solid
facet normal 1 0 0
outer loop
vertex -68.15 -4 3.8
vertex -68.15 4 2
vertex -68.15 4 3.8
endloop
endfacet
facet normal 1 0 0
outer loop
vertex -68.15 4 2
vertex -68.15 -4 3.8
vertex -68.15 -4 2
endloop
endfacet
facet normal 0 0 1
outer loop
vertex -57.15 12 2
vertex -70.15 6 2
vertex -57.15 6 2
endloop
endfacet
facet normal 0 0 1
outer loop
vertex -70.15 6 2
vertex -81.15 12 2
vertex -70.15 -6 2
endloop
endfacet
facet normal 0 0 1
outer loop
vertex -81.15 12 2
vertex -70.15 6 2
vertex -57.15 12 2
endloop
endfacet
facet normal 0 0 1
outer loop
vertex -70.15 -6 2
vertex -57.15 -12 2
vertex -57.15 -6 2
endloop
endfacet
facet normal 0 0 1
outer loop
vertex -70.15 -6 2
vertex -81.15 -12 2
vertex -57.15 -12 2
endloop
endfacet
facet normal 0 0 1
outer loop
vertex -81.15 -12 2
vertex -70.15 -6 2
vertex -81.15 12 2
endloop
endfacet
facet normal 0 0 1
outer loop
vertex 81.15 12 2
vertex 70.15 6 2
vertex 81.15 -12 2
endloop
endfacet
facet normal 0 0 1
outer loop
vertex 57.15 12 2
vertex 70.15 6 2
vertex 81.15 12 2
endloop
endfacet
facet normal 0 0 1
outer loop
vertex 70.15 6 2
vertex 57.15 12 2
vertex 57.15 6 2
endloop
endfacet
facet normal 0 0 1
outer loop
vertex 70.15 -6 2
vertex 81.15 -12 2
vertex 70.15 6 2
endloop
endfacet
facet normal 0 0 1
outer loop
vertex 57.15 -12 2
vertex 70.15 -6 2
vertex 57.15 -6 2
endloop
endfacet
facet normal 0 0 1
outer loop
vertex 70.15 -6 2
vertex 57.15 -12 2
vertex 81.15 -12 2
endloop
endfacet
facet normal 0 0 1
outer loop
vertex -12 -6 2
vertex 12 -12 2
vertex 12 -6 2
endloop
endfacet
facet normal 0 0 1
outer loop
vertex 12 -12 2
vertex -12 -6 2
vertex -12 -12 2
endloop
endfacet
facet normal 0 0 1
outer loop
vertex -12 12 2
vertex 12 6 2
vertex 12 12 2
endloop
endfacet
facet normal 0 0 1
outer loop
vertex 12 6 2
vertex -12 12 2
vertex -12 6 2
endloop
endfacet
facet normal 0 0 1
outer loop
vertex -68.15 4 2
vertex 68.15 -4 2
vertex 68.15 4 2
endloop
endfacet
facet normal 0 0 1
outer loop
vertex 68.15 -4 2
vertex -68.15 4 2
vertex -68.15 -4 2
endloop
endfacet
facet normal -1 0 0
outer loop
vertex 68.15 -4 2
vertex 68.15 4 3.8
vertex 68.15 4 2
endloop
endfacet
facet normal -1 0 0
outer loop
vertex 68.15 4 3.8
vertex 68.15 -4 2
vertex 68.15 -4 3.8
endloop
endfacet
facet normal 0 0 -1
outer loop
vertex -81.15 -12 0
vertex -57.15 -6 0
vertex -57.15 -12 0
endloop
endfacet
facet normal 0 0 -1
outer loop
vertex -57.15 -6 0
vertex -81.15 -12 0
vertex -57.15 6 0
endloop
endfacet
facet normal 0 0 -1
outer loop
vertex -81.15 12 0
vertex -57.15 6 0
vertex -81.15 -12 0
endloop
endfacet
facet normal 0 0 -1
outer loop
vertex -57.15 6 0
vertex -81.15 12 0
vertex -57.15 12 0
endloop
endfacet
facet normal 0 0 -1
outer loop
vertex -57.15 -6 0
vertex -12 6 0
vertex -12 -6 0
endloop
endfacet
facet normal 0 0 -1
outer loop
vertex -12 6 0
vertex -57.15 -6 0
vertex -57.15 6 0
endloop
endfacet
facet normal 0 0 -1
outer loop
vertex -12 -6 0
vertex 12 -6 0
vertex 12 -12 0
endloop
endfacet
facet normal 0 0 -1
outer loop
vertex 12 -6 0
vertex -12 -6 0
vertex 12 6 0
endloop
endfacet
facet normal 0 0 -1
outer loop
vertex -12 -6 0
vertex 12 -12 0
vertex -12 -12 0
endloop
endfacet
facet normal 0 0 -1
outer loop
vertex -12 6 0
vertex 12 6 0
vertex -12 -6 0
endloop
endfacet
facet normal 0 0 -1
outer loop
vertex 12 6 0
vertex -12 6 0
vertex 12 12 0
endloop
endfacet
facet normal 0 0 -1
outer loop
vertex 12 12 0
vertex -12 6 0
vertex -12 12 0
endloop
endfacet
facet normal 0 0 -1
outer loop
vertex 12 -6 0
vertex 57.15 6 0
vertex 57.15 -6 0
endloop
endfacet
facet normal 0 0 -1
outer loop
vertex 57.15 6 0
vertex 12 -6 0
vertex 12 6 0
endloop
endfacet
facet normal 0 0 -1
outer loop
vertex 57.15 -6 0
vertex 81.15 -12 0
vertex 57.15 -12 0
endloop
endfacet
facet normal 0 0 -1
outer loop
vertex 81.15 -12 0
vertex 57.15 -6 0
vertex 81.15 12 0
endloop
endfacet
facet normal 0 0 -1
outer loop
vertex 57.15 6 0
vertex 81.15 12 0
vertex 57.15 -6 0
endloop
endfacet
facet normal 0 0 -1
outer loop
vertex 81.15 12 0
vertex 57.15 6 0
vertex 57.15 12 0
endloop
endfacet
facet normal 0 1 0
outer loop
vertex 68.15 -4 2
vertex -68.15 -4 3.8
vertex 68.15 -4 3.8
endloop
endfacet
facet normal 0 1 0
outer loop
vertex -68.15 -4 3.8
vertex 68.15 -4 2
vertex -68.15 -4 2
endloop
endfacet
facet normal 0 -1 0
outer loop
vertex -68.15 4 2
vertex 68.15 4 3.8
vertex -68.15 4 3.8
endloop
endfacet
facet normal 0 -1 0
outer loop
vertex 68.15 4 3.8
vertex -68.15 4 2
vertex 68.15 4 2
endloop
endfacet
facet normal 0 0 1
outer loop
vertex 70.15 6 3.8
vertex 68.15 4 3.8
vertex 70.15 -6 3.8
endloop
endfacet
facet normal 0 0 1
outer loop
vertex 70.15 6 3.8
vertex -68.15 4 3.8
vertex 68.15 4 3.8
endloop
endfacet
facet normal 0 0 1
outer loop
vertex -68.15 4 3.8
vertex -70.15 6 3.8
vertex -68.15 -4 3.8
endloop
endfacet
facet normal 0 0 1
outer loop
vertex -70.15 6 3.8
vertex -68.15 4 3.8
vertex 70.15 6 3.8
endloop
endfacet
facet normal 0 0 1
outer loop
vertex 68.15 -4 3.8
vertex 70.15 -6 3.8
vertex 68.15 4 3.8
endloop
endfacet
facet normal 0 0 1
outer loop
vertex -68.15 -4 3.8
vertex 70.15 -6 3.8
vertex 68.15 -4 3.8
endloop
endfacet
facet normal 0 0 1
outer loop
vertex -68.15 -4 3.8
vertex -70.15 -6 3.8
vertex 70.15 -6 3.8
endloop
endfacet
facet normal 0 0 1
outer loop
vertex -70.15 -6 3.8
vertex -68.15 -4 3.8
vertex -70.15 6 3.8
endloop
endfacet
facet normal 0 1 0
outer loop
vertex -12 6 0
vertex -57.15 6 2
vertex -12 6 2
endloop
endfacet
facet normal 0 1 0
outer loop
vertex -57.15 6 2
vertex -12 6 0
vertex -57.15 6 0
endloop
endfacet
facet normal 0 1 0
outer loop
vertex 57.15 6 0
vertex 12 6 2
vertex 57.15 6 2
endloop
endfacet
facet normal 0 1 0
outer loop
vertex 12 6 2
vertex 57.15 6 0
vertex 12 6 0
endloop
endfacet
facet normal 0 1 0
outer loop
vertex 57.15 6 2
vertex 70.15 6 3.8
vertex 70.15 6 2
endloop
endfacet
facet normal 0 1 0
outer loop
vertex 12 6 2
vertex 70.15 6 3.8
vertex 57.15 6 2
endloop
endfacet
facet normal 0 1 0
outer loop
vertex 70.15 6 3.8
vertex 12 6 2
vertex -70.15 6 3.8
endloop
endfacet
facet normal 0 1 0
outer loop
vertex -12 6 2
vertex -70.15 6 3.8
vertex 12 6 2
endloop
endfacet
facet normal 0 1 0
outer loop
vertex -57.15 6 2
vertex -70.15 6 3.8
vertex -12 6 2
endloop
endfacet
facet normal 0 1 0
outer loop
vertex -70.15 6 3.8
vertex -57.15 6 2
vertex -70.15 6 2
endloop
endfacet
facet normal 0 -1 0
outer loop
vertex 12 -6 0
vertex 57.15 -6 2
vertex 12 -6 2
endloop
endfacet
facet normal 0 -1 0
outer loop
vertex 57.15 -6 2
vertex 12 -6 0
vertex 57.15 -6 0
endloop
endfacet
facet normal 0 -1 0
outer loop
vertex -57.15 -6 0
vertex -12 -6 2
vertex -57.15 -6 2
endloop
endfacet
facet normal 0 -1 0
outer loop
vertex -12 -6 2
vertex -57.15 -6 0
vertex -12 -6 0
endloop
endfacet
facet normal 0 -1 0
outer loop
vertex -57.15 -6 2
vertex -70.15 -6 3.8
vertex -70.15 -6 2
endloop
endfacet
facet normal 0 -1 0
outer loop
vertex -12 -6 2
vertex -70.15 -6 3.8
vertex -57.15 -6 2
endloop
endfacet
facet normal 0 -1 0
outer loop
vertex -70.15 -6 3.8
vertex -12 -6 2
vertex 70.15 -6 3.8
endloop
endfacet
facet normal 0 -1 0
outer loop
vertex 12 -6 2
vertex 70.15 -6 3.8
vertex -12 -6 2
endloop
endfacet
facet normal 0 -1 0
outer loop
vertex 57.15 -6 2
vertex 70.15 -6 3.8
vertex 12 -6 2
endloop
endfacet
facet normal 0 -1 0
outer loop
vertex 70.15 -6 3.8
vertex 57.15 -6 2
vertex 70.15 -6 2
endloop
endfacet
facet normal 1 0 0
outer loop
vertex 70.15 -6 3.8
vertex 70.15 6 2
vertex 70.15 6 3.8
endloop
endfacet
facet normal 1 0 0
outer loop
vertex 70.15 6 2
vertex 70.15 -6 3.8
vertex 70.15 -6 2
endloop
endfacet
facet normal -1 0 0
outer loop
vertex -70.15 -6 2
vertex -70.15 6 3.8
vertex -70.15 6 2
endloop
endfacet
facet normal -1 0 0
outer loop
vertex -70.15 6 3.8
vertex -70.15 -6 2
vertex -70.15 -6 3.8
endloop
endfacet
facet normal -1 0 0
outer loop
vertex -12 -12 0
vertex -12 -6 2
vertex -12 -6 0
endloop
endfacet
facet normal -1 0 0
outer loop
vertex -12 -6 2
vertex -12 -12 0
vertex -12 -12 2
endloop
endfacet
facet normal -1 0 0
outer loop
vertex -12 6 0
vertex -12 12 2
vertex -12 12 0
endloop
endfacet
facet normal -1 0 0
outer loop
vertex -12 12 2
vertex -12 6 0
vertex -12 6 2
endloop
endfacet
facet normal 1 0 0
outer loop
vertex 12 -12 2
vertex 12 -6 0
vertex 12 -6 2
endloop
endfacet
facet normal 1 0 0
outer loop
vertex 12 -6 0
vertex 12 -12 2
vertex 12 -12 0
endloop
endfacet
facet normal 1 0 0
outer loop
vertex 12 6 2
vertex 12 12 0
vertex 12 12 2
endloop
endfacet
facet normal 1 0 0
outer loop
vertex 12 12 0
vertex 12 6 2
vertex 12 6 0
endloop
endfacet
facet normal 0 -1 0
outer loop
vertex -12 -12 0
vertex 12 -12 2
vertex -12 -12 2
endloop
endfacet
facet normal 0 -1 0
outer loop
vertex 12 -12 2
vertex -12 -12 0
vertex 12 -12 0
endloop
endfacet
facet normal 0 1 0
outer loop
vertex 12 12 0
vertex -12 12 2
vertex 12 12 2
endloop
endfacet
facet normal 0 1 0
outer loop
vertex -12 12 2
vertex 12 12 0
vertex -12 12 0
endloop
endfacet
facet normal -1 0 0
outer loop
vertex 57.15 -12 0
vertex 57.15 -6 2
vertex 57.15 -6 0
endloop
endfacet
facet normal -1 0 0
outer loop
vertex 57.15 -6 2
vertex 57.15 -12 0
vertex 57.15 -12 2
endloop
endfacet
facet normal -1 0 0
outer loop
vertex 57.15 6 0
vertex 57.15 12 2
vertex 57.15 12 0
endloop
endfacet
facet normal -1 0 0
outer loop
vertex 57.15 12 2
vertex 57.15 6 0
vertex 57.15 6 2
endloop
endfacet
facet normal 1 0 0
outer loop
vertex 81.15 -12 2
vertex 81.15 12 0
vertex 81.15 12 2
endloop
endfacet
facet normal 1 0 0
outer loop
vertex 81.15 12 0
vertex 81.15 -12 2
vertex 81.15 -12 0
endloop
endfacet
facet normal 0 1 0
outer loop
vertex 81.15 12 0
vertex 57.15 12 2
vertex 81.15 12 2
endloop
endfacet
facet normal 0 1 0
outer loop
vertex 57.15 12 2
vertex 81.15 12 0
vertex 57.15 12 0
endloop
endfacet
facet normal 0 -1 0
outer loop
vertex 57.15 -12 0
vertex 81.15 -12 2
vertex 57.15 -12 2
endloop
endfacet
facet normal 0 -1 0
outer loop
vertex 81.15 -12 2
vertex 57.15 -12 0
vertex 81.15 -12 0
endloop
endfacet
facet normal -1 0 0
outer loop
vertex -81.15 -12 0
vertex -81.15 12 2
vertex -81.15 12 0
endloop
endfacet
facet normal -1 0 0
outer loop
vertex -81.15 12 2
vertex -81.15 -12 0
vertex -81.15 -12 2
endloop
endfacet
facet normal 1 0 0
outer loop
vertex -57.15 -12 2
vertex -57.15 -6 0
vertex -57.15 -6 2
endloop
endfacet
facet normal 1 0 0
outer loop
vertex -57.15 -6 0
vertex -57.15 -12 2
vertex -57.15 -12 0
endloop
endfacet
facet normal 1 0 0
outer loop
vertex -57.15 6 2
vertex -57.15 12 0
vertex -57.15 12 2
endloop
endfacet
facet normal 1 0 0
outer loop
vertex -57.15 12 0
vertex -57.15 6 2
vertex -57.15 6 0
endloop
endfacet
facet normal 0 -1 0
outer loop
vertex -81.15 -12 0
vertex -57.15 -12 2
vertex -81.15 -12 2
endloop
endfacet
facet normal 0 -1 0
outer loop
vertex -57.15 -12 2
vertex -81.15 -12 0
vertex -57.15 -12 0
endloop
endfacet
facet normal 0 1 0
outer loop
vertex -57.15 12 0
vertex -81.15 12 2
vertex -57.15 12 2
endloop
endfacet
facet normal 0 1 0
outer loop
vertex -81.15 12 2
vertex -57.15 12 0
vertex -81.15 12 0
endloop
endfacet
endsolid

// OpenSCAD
l=136.3;
w=8;
h=1.8;
wall_thickness = 2;

translate([0, 0, wall_thickness/2]) cube([l, w, wall_thickness], center=true);
translate([0, (w+wall_thickness)/2, (h+wall_thickness)/2]) cube([l, wall_thickness, h+wall_thickness], center=true); 
translate([0, -(w+wall_thickness)/2, (h+wall_thickness)/2]) cube([l, wall_thickness, h+wall_thickness], center=true);
translate([(l+wall_thickness)/2, 0, (h+wall_thickness)/2]) cube([wall_thickness, w+wall_thickness*2, h+wall_thickness], center=true); 
translate([-(l+wall_thickness)/2, 0, (h+wall_thickness)/2]) cube([wall_thickness, w+wall_thickness*2, h+wall_thickness], center=true); 


translate([0, 0, wall_thickness/2]) cube([w*3, w*3, wall_thickness], center=true);
translate([(l+wall_thickness)/2, 0, wall_thickness/2]) cube([w*3, w*3, wall_thickness], center=true);
translate([-(l+wall_thickness)/2, 0, wall_thickness/2]) cube([w*3, w*3, wall_thickness], center=true);
